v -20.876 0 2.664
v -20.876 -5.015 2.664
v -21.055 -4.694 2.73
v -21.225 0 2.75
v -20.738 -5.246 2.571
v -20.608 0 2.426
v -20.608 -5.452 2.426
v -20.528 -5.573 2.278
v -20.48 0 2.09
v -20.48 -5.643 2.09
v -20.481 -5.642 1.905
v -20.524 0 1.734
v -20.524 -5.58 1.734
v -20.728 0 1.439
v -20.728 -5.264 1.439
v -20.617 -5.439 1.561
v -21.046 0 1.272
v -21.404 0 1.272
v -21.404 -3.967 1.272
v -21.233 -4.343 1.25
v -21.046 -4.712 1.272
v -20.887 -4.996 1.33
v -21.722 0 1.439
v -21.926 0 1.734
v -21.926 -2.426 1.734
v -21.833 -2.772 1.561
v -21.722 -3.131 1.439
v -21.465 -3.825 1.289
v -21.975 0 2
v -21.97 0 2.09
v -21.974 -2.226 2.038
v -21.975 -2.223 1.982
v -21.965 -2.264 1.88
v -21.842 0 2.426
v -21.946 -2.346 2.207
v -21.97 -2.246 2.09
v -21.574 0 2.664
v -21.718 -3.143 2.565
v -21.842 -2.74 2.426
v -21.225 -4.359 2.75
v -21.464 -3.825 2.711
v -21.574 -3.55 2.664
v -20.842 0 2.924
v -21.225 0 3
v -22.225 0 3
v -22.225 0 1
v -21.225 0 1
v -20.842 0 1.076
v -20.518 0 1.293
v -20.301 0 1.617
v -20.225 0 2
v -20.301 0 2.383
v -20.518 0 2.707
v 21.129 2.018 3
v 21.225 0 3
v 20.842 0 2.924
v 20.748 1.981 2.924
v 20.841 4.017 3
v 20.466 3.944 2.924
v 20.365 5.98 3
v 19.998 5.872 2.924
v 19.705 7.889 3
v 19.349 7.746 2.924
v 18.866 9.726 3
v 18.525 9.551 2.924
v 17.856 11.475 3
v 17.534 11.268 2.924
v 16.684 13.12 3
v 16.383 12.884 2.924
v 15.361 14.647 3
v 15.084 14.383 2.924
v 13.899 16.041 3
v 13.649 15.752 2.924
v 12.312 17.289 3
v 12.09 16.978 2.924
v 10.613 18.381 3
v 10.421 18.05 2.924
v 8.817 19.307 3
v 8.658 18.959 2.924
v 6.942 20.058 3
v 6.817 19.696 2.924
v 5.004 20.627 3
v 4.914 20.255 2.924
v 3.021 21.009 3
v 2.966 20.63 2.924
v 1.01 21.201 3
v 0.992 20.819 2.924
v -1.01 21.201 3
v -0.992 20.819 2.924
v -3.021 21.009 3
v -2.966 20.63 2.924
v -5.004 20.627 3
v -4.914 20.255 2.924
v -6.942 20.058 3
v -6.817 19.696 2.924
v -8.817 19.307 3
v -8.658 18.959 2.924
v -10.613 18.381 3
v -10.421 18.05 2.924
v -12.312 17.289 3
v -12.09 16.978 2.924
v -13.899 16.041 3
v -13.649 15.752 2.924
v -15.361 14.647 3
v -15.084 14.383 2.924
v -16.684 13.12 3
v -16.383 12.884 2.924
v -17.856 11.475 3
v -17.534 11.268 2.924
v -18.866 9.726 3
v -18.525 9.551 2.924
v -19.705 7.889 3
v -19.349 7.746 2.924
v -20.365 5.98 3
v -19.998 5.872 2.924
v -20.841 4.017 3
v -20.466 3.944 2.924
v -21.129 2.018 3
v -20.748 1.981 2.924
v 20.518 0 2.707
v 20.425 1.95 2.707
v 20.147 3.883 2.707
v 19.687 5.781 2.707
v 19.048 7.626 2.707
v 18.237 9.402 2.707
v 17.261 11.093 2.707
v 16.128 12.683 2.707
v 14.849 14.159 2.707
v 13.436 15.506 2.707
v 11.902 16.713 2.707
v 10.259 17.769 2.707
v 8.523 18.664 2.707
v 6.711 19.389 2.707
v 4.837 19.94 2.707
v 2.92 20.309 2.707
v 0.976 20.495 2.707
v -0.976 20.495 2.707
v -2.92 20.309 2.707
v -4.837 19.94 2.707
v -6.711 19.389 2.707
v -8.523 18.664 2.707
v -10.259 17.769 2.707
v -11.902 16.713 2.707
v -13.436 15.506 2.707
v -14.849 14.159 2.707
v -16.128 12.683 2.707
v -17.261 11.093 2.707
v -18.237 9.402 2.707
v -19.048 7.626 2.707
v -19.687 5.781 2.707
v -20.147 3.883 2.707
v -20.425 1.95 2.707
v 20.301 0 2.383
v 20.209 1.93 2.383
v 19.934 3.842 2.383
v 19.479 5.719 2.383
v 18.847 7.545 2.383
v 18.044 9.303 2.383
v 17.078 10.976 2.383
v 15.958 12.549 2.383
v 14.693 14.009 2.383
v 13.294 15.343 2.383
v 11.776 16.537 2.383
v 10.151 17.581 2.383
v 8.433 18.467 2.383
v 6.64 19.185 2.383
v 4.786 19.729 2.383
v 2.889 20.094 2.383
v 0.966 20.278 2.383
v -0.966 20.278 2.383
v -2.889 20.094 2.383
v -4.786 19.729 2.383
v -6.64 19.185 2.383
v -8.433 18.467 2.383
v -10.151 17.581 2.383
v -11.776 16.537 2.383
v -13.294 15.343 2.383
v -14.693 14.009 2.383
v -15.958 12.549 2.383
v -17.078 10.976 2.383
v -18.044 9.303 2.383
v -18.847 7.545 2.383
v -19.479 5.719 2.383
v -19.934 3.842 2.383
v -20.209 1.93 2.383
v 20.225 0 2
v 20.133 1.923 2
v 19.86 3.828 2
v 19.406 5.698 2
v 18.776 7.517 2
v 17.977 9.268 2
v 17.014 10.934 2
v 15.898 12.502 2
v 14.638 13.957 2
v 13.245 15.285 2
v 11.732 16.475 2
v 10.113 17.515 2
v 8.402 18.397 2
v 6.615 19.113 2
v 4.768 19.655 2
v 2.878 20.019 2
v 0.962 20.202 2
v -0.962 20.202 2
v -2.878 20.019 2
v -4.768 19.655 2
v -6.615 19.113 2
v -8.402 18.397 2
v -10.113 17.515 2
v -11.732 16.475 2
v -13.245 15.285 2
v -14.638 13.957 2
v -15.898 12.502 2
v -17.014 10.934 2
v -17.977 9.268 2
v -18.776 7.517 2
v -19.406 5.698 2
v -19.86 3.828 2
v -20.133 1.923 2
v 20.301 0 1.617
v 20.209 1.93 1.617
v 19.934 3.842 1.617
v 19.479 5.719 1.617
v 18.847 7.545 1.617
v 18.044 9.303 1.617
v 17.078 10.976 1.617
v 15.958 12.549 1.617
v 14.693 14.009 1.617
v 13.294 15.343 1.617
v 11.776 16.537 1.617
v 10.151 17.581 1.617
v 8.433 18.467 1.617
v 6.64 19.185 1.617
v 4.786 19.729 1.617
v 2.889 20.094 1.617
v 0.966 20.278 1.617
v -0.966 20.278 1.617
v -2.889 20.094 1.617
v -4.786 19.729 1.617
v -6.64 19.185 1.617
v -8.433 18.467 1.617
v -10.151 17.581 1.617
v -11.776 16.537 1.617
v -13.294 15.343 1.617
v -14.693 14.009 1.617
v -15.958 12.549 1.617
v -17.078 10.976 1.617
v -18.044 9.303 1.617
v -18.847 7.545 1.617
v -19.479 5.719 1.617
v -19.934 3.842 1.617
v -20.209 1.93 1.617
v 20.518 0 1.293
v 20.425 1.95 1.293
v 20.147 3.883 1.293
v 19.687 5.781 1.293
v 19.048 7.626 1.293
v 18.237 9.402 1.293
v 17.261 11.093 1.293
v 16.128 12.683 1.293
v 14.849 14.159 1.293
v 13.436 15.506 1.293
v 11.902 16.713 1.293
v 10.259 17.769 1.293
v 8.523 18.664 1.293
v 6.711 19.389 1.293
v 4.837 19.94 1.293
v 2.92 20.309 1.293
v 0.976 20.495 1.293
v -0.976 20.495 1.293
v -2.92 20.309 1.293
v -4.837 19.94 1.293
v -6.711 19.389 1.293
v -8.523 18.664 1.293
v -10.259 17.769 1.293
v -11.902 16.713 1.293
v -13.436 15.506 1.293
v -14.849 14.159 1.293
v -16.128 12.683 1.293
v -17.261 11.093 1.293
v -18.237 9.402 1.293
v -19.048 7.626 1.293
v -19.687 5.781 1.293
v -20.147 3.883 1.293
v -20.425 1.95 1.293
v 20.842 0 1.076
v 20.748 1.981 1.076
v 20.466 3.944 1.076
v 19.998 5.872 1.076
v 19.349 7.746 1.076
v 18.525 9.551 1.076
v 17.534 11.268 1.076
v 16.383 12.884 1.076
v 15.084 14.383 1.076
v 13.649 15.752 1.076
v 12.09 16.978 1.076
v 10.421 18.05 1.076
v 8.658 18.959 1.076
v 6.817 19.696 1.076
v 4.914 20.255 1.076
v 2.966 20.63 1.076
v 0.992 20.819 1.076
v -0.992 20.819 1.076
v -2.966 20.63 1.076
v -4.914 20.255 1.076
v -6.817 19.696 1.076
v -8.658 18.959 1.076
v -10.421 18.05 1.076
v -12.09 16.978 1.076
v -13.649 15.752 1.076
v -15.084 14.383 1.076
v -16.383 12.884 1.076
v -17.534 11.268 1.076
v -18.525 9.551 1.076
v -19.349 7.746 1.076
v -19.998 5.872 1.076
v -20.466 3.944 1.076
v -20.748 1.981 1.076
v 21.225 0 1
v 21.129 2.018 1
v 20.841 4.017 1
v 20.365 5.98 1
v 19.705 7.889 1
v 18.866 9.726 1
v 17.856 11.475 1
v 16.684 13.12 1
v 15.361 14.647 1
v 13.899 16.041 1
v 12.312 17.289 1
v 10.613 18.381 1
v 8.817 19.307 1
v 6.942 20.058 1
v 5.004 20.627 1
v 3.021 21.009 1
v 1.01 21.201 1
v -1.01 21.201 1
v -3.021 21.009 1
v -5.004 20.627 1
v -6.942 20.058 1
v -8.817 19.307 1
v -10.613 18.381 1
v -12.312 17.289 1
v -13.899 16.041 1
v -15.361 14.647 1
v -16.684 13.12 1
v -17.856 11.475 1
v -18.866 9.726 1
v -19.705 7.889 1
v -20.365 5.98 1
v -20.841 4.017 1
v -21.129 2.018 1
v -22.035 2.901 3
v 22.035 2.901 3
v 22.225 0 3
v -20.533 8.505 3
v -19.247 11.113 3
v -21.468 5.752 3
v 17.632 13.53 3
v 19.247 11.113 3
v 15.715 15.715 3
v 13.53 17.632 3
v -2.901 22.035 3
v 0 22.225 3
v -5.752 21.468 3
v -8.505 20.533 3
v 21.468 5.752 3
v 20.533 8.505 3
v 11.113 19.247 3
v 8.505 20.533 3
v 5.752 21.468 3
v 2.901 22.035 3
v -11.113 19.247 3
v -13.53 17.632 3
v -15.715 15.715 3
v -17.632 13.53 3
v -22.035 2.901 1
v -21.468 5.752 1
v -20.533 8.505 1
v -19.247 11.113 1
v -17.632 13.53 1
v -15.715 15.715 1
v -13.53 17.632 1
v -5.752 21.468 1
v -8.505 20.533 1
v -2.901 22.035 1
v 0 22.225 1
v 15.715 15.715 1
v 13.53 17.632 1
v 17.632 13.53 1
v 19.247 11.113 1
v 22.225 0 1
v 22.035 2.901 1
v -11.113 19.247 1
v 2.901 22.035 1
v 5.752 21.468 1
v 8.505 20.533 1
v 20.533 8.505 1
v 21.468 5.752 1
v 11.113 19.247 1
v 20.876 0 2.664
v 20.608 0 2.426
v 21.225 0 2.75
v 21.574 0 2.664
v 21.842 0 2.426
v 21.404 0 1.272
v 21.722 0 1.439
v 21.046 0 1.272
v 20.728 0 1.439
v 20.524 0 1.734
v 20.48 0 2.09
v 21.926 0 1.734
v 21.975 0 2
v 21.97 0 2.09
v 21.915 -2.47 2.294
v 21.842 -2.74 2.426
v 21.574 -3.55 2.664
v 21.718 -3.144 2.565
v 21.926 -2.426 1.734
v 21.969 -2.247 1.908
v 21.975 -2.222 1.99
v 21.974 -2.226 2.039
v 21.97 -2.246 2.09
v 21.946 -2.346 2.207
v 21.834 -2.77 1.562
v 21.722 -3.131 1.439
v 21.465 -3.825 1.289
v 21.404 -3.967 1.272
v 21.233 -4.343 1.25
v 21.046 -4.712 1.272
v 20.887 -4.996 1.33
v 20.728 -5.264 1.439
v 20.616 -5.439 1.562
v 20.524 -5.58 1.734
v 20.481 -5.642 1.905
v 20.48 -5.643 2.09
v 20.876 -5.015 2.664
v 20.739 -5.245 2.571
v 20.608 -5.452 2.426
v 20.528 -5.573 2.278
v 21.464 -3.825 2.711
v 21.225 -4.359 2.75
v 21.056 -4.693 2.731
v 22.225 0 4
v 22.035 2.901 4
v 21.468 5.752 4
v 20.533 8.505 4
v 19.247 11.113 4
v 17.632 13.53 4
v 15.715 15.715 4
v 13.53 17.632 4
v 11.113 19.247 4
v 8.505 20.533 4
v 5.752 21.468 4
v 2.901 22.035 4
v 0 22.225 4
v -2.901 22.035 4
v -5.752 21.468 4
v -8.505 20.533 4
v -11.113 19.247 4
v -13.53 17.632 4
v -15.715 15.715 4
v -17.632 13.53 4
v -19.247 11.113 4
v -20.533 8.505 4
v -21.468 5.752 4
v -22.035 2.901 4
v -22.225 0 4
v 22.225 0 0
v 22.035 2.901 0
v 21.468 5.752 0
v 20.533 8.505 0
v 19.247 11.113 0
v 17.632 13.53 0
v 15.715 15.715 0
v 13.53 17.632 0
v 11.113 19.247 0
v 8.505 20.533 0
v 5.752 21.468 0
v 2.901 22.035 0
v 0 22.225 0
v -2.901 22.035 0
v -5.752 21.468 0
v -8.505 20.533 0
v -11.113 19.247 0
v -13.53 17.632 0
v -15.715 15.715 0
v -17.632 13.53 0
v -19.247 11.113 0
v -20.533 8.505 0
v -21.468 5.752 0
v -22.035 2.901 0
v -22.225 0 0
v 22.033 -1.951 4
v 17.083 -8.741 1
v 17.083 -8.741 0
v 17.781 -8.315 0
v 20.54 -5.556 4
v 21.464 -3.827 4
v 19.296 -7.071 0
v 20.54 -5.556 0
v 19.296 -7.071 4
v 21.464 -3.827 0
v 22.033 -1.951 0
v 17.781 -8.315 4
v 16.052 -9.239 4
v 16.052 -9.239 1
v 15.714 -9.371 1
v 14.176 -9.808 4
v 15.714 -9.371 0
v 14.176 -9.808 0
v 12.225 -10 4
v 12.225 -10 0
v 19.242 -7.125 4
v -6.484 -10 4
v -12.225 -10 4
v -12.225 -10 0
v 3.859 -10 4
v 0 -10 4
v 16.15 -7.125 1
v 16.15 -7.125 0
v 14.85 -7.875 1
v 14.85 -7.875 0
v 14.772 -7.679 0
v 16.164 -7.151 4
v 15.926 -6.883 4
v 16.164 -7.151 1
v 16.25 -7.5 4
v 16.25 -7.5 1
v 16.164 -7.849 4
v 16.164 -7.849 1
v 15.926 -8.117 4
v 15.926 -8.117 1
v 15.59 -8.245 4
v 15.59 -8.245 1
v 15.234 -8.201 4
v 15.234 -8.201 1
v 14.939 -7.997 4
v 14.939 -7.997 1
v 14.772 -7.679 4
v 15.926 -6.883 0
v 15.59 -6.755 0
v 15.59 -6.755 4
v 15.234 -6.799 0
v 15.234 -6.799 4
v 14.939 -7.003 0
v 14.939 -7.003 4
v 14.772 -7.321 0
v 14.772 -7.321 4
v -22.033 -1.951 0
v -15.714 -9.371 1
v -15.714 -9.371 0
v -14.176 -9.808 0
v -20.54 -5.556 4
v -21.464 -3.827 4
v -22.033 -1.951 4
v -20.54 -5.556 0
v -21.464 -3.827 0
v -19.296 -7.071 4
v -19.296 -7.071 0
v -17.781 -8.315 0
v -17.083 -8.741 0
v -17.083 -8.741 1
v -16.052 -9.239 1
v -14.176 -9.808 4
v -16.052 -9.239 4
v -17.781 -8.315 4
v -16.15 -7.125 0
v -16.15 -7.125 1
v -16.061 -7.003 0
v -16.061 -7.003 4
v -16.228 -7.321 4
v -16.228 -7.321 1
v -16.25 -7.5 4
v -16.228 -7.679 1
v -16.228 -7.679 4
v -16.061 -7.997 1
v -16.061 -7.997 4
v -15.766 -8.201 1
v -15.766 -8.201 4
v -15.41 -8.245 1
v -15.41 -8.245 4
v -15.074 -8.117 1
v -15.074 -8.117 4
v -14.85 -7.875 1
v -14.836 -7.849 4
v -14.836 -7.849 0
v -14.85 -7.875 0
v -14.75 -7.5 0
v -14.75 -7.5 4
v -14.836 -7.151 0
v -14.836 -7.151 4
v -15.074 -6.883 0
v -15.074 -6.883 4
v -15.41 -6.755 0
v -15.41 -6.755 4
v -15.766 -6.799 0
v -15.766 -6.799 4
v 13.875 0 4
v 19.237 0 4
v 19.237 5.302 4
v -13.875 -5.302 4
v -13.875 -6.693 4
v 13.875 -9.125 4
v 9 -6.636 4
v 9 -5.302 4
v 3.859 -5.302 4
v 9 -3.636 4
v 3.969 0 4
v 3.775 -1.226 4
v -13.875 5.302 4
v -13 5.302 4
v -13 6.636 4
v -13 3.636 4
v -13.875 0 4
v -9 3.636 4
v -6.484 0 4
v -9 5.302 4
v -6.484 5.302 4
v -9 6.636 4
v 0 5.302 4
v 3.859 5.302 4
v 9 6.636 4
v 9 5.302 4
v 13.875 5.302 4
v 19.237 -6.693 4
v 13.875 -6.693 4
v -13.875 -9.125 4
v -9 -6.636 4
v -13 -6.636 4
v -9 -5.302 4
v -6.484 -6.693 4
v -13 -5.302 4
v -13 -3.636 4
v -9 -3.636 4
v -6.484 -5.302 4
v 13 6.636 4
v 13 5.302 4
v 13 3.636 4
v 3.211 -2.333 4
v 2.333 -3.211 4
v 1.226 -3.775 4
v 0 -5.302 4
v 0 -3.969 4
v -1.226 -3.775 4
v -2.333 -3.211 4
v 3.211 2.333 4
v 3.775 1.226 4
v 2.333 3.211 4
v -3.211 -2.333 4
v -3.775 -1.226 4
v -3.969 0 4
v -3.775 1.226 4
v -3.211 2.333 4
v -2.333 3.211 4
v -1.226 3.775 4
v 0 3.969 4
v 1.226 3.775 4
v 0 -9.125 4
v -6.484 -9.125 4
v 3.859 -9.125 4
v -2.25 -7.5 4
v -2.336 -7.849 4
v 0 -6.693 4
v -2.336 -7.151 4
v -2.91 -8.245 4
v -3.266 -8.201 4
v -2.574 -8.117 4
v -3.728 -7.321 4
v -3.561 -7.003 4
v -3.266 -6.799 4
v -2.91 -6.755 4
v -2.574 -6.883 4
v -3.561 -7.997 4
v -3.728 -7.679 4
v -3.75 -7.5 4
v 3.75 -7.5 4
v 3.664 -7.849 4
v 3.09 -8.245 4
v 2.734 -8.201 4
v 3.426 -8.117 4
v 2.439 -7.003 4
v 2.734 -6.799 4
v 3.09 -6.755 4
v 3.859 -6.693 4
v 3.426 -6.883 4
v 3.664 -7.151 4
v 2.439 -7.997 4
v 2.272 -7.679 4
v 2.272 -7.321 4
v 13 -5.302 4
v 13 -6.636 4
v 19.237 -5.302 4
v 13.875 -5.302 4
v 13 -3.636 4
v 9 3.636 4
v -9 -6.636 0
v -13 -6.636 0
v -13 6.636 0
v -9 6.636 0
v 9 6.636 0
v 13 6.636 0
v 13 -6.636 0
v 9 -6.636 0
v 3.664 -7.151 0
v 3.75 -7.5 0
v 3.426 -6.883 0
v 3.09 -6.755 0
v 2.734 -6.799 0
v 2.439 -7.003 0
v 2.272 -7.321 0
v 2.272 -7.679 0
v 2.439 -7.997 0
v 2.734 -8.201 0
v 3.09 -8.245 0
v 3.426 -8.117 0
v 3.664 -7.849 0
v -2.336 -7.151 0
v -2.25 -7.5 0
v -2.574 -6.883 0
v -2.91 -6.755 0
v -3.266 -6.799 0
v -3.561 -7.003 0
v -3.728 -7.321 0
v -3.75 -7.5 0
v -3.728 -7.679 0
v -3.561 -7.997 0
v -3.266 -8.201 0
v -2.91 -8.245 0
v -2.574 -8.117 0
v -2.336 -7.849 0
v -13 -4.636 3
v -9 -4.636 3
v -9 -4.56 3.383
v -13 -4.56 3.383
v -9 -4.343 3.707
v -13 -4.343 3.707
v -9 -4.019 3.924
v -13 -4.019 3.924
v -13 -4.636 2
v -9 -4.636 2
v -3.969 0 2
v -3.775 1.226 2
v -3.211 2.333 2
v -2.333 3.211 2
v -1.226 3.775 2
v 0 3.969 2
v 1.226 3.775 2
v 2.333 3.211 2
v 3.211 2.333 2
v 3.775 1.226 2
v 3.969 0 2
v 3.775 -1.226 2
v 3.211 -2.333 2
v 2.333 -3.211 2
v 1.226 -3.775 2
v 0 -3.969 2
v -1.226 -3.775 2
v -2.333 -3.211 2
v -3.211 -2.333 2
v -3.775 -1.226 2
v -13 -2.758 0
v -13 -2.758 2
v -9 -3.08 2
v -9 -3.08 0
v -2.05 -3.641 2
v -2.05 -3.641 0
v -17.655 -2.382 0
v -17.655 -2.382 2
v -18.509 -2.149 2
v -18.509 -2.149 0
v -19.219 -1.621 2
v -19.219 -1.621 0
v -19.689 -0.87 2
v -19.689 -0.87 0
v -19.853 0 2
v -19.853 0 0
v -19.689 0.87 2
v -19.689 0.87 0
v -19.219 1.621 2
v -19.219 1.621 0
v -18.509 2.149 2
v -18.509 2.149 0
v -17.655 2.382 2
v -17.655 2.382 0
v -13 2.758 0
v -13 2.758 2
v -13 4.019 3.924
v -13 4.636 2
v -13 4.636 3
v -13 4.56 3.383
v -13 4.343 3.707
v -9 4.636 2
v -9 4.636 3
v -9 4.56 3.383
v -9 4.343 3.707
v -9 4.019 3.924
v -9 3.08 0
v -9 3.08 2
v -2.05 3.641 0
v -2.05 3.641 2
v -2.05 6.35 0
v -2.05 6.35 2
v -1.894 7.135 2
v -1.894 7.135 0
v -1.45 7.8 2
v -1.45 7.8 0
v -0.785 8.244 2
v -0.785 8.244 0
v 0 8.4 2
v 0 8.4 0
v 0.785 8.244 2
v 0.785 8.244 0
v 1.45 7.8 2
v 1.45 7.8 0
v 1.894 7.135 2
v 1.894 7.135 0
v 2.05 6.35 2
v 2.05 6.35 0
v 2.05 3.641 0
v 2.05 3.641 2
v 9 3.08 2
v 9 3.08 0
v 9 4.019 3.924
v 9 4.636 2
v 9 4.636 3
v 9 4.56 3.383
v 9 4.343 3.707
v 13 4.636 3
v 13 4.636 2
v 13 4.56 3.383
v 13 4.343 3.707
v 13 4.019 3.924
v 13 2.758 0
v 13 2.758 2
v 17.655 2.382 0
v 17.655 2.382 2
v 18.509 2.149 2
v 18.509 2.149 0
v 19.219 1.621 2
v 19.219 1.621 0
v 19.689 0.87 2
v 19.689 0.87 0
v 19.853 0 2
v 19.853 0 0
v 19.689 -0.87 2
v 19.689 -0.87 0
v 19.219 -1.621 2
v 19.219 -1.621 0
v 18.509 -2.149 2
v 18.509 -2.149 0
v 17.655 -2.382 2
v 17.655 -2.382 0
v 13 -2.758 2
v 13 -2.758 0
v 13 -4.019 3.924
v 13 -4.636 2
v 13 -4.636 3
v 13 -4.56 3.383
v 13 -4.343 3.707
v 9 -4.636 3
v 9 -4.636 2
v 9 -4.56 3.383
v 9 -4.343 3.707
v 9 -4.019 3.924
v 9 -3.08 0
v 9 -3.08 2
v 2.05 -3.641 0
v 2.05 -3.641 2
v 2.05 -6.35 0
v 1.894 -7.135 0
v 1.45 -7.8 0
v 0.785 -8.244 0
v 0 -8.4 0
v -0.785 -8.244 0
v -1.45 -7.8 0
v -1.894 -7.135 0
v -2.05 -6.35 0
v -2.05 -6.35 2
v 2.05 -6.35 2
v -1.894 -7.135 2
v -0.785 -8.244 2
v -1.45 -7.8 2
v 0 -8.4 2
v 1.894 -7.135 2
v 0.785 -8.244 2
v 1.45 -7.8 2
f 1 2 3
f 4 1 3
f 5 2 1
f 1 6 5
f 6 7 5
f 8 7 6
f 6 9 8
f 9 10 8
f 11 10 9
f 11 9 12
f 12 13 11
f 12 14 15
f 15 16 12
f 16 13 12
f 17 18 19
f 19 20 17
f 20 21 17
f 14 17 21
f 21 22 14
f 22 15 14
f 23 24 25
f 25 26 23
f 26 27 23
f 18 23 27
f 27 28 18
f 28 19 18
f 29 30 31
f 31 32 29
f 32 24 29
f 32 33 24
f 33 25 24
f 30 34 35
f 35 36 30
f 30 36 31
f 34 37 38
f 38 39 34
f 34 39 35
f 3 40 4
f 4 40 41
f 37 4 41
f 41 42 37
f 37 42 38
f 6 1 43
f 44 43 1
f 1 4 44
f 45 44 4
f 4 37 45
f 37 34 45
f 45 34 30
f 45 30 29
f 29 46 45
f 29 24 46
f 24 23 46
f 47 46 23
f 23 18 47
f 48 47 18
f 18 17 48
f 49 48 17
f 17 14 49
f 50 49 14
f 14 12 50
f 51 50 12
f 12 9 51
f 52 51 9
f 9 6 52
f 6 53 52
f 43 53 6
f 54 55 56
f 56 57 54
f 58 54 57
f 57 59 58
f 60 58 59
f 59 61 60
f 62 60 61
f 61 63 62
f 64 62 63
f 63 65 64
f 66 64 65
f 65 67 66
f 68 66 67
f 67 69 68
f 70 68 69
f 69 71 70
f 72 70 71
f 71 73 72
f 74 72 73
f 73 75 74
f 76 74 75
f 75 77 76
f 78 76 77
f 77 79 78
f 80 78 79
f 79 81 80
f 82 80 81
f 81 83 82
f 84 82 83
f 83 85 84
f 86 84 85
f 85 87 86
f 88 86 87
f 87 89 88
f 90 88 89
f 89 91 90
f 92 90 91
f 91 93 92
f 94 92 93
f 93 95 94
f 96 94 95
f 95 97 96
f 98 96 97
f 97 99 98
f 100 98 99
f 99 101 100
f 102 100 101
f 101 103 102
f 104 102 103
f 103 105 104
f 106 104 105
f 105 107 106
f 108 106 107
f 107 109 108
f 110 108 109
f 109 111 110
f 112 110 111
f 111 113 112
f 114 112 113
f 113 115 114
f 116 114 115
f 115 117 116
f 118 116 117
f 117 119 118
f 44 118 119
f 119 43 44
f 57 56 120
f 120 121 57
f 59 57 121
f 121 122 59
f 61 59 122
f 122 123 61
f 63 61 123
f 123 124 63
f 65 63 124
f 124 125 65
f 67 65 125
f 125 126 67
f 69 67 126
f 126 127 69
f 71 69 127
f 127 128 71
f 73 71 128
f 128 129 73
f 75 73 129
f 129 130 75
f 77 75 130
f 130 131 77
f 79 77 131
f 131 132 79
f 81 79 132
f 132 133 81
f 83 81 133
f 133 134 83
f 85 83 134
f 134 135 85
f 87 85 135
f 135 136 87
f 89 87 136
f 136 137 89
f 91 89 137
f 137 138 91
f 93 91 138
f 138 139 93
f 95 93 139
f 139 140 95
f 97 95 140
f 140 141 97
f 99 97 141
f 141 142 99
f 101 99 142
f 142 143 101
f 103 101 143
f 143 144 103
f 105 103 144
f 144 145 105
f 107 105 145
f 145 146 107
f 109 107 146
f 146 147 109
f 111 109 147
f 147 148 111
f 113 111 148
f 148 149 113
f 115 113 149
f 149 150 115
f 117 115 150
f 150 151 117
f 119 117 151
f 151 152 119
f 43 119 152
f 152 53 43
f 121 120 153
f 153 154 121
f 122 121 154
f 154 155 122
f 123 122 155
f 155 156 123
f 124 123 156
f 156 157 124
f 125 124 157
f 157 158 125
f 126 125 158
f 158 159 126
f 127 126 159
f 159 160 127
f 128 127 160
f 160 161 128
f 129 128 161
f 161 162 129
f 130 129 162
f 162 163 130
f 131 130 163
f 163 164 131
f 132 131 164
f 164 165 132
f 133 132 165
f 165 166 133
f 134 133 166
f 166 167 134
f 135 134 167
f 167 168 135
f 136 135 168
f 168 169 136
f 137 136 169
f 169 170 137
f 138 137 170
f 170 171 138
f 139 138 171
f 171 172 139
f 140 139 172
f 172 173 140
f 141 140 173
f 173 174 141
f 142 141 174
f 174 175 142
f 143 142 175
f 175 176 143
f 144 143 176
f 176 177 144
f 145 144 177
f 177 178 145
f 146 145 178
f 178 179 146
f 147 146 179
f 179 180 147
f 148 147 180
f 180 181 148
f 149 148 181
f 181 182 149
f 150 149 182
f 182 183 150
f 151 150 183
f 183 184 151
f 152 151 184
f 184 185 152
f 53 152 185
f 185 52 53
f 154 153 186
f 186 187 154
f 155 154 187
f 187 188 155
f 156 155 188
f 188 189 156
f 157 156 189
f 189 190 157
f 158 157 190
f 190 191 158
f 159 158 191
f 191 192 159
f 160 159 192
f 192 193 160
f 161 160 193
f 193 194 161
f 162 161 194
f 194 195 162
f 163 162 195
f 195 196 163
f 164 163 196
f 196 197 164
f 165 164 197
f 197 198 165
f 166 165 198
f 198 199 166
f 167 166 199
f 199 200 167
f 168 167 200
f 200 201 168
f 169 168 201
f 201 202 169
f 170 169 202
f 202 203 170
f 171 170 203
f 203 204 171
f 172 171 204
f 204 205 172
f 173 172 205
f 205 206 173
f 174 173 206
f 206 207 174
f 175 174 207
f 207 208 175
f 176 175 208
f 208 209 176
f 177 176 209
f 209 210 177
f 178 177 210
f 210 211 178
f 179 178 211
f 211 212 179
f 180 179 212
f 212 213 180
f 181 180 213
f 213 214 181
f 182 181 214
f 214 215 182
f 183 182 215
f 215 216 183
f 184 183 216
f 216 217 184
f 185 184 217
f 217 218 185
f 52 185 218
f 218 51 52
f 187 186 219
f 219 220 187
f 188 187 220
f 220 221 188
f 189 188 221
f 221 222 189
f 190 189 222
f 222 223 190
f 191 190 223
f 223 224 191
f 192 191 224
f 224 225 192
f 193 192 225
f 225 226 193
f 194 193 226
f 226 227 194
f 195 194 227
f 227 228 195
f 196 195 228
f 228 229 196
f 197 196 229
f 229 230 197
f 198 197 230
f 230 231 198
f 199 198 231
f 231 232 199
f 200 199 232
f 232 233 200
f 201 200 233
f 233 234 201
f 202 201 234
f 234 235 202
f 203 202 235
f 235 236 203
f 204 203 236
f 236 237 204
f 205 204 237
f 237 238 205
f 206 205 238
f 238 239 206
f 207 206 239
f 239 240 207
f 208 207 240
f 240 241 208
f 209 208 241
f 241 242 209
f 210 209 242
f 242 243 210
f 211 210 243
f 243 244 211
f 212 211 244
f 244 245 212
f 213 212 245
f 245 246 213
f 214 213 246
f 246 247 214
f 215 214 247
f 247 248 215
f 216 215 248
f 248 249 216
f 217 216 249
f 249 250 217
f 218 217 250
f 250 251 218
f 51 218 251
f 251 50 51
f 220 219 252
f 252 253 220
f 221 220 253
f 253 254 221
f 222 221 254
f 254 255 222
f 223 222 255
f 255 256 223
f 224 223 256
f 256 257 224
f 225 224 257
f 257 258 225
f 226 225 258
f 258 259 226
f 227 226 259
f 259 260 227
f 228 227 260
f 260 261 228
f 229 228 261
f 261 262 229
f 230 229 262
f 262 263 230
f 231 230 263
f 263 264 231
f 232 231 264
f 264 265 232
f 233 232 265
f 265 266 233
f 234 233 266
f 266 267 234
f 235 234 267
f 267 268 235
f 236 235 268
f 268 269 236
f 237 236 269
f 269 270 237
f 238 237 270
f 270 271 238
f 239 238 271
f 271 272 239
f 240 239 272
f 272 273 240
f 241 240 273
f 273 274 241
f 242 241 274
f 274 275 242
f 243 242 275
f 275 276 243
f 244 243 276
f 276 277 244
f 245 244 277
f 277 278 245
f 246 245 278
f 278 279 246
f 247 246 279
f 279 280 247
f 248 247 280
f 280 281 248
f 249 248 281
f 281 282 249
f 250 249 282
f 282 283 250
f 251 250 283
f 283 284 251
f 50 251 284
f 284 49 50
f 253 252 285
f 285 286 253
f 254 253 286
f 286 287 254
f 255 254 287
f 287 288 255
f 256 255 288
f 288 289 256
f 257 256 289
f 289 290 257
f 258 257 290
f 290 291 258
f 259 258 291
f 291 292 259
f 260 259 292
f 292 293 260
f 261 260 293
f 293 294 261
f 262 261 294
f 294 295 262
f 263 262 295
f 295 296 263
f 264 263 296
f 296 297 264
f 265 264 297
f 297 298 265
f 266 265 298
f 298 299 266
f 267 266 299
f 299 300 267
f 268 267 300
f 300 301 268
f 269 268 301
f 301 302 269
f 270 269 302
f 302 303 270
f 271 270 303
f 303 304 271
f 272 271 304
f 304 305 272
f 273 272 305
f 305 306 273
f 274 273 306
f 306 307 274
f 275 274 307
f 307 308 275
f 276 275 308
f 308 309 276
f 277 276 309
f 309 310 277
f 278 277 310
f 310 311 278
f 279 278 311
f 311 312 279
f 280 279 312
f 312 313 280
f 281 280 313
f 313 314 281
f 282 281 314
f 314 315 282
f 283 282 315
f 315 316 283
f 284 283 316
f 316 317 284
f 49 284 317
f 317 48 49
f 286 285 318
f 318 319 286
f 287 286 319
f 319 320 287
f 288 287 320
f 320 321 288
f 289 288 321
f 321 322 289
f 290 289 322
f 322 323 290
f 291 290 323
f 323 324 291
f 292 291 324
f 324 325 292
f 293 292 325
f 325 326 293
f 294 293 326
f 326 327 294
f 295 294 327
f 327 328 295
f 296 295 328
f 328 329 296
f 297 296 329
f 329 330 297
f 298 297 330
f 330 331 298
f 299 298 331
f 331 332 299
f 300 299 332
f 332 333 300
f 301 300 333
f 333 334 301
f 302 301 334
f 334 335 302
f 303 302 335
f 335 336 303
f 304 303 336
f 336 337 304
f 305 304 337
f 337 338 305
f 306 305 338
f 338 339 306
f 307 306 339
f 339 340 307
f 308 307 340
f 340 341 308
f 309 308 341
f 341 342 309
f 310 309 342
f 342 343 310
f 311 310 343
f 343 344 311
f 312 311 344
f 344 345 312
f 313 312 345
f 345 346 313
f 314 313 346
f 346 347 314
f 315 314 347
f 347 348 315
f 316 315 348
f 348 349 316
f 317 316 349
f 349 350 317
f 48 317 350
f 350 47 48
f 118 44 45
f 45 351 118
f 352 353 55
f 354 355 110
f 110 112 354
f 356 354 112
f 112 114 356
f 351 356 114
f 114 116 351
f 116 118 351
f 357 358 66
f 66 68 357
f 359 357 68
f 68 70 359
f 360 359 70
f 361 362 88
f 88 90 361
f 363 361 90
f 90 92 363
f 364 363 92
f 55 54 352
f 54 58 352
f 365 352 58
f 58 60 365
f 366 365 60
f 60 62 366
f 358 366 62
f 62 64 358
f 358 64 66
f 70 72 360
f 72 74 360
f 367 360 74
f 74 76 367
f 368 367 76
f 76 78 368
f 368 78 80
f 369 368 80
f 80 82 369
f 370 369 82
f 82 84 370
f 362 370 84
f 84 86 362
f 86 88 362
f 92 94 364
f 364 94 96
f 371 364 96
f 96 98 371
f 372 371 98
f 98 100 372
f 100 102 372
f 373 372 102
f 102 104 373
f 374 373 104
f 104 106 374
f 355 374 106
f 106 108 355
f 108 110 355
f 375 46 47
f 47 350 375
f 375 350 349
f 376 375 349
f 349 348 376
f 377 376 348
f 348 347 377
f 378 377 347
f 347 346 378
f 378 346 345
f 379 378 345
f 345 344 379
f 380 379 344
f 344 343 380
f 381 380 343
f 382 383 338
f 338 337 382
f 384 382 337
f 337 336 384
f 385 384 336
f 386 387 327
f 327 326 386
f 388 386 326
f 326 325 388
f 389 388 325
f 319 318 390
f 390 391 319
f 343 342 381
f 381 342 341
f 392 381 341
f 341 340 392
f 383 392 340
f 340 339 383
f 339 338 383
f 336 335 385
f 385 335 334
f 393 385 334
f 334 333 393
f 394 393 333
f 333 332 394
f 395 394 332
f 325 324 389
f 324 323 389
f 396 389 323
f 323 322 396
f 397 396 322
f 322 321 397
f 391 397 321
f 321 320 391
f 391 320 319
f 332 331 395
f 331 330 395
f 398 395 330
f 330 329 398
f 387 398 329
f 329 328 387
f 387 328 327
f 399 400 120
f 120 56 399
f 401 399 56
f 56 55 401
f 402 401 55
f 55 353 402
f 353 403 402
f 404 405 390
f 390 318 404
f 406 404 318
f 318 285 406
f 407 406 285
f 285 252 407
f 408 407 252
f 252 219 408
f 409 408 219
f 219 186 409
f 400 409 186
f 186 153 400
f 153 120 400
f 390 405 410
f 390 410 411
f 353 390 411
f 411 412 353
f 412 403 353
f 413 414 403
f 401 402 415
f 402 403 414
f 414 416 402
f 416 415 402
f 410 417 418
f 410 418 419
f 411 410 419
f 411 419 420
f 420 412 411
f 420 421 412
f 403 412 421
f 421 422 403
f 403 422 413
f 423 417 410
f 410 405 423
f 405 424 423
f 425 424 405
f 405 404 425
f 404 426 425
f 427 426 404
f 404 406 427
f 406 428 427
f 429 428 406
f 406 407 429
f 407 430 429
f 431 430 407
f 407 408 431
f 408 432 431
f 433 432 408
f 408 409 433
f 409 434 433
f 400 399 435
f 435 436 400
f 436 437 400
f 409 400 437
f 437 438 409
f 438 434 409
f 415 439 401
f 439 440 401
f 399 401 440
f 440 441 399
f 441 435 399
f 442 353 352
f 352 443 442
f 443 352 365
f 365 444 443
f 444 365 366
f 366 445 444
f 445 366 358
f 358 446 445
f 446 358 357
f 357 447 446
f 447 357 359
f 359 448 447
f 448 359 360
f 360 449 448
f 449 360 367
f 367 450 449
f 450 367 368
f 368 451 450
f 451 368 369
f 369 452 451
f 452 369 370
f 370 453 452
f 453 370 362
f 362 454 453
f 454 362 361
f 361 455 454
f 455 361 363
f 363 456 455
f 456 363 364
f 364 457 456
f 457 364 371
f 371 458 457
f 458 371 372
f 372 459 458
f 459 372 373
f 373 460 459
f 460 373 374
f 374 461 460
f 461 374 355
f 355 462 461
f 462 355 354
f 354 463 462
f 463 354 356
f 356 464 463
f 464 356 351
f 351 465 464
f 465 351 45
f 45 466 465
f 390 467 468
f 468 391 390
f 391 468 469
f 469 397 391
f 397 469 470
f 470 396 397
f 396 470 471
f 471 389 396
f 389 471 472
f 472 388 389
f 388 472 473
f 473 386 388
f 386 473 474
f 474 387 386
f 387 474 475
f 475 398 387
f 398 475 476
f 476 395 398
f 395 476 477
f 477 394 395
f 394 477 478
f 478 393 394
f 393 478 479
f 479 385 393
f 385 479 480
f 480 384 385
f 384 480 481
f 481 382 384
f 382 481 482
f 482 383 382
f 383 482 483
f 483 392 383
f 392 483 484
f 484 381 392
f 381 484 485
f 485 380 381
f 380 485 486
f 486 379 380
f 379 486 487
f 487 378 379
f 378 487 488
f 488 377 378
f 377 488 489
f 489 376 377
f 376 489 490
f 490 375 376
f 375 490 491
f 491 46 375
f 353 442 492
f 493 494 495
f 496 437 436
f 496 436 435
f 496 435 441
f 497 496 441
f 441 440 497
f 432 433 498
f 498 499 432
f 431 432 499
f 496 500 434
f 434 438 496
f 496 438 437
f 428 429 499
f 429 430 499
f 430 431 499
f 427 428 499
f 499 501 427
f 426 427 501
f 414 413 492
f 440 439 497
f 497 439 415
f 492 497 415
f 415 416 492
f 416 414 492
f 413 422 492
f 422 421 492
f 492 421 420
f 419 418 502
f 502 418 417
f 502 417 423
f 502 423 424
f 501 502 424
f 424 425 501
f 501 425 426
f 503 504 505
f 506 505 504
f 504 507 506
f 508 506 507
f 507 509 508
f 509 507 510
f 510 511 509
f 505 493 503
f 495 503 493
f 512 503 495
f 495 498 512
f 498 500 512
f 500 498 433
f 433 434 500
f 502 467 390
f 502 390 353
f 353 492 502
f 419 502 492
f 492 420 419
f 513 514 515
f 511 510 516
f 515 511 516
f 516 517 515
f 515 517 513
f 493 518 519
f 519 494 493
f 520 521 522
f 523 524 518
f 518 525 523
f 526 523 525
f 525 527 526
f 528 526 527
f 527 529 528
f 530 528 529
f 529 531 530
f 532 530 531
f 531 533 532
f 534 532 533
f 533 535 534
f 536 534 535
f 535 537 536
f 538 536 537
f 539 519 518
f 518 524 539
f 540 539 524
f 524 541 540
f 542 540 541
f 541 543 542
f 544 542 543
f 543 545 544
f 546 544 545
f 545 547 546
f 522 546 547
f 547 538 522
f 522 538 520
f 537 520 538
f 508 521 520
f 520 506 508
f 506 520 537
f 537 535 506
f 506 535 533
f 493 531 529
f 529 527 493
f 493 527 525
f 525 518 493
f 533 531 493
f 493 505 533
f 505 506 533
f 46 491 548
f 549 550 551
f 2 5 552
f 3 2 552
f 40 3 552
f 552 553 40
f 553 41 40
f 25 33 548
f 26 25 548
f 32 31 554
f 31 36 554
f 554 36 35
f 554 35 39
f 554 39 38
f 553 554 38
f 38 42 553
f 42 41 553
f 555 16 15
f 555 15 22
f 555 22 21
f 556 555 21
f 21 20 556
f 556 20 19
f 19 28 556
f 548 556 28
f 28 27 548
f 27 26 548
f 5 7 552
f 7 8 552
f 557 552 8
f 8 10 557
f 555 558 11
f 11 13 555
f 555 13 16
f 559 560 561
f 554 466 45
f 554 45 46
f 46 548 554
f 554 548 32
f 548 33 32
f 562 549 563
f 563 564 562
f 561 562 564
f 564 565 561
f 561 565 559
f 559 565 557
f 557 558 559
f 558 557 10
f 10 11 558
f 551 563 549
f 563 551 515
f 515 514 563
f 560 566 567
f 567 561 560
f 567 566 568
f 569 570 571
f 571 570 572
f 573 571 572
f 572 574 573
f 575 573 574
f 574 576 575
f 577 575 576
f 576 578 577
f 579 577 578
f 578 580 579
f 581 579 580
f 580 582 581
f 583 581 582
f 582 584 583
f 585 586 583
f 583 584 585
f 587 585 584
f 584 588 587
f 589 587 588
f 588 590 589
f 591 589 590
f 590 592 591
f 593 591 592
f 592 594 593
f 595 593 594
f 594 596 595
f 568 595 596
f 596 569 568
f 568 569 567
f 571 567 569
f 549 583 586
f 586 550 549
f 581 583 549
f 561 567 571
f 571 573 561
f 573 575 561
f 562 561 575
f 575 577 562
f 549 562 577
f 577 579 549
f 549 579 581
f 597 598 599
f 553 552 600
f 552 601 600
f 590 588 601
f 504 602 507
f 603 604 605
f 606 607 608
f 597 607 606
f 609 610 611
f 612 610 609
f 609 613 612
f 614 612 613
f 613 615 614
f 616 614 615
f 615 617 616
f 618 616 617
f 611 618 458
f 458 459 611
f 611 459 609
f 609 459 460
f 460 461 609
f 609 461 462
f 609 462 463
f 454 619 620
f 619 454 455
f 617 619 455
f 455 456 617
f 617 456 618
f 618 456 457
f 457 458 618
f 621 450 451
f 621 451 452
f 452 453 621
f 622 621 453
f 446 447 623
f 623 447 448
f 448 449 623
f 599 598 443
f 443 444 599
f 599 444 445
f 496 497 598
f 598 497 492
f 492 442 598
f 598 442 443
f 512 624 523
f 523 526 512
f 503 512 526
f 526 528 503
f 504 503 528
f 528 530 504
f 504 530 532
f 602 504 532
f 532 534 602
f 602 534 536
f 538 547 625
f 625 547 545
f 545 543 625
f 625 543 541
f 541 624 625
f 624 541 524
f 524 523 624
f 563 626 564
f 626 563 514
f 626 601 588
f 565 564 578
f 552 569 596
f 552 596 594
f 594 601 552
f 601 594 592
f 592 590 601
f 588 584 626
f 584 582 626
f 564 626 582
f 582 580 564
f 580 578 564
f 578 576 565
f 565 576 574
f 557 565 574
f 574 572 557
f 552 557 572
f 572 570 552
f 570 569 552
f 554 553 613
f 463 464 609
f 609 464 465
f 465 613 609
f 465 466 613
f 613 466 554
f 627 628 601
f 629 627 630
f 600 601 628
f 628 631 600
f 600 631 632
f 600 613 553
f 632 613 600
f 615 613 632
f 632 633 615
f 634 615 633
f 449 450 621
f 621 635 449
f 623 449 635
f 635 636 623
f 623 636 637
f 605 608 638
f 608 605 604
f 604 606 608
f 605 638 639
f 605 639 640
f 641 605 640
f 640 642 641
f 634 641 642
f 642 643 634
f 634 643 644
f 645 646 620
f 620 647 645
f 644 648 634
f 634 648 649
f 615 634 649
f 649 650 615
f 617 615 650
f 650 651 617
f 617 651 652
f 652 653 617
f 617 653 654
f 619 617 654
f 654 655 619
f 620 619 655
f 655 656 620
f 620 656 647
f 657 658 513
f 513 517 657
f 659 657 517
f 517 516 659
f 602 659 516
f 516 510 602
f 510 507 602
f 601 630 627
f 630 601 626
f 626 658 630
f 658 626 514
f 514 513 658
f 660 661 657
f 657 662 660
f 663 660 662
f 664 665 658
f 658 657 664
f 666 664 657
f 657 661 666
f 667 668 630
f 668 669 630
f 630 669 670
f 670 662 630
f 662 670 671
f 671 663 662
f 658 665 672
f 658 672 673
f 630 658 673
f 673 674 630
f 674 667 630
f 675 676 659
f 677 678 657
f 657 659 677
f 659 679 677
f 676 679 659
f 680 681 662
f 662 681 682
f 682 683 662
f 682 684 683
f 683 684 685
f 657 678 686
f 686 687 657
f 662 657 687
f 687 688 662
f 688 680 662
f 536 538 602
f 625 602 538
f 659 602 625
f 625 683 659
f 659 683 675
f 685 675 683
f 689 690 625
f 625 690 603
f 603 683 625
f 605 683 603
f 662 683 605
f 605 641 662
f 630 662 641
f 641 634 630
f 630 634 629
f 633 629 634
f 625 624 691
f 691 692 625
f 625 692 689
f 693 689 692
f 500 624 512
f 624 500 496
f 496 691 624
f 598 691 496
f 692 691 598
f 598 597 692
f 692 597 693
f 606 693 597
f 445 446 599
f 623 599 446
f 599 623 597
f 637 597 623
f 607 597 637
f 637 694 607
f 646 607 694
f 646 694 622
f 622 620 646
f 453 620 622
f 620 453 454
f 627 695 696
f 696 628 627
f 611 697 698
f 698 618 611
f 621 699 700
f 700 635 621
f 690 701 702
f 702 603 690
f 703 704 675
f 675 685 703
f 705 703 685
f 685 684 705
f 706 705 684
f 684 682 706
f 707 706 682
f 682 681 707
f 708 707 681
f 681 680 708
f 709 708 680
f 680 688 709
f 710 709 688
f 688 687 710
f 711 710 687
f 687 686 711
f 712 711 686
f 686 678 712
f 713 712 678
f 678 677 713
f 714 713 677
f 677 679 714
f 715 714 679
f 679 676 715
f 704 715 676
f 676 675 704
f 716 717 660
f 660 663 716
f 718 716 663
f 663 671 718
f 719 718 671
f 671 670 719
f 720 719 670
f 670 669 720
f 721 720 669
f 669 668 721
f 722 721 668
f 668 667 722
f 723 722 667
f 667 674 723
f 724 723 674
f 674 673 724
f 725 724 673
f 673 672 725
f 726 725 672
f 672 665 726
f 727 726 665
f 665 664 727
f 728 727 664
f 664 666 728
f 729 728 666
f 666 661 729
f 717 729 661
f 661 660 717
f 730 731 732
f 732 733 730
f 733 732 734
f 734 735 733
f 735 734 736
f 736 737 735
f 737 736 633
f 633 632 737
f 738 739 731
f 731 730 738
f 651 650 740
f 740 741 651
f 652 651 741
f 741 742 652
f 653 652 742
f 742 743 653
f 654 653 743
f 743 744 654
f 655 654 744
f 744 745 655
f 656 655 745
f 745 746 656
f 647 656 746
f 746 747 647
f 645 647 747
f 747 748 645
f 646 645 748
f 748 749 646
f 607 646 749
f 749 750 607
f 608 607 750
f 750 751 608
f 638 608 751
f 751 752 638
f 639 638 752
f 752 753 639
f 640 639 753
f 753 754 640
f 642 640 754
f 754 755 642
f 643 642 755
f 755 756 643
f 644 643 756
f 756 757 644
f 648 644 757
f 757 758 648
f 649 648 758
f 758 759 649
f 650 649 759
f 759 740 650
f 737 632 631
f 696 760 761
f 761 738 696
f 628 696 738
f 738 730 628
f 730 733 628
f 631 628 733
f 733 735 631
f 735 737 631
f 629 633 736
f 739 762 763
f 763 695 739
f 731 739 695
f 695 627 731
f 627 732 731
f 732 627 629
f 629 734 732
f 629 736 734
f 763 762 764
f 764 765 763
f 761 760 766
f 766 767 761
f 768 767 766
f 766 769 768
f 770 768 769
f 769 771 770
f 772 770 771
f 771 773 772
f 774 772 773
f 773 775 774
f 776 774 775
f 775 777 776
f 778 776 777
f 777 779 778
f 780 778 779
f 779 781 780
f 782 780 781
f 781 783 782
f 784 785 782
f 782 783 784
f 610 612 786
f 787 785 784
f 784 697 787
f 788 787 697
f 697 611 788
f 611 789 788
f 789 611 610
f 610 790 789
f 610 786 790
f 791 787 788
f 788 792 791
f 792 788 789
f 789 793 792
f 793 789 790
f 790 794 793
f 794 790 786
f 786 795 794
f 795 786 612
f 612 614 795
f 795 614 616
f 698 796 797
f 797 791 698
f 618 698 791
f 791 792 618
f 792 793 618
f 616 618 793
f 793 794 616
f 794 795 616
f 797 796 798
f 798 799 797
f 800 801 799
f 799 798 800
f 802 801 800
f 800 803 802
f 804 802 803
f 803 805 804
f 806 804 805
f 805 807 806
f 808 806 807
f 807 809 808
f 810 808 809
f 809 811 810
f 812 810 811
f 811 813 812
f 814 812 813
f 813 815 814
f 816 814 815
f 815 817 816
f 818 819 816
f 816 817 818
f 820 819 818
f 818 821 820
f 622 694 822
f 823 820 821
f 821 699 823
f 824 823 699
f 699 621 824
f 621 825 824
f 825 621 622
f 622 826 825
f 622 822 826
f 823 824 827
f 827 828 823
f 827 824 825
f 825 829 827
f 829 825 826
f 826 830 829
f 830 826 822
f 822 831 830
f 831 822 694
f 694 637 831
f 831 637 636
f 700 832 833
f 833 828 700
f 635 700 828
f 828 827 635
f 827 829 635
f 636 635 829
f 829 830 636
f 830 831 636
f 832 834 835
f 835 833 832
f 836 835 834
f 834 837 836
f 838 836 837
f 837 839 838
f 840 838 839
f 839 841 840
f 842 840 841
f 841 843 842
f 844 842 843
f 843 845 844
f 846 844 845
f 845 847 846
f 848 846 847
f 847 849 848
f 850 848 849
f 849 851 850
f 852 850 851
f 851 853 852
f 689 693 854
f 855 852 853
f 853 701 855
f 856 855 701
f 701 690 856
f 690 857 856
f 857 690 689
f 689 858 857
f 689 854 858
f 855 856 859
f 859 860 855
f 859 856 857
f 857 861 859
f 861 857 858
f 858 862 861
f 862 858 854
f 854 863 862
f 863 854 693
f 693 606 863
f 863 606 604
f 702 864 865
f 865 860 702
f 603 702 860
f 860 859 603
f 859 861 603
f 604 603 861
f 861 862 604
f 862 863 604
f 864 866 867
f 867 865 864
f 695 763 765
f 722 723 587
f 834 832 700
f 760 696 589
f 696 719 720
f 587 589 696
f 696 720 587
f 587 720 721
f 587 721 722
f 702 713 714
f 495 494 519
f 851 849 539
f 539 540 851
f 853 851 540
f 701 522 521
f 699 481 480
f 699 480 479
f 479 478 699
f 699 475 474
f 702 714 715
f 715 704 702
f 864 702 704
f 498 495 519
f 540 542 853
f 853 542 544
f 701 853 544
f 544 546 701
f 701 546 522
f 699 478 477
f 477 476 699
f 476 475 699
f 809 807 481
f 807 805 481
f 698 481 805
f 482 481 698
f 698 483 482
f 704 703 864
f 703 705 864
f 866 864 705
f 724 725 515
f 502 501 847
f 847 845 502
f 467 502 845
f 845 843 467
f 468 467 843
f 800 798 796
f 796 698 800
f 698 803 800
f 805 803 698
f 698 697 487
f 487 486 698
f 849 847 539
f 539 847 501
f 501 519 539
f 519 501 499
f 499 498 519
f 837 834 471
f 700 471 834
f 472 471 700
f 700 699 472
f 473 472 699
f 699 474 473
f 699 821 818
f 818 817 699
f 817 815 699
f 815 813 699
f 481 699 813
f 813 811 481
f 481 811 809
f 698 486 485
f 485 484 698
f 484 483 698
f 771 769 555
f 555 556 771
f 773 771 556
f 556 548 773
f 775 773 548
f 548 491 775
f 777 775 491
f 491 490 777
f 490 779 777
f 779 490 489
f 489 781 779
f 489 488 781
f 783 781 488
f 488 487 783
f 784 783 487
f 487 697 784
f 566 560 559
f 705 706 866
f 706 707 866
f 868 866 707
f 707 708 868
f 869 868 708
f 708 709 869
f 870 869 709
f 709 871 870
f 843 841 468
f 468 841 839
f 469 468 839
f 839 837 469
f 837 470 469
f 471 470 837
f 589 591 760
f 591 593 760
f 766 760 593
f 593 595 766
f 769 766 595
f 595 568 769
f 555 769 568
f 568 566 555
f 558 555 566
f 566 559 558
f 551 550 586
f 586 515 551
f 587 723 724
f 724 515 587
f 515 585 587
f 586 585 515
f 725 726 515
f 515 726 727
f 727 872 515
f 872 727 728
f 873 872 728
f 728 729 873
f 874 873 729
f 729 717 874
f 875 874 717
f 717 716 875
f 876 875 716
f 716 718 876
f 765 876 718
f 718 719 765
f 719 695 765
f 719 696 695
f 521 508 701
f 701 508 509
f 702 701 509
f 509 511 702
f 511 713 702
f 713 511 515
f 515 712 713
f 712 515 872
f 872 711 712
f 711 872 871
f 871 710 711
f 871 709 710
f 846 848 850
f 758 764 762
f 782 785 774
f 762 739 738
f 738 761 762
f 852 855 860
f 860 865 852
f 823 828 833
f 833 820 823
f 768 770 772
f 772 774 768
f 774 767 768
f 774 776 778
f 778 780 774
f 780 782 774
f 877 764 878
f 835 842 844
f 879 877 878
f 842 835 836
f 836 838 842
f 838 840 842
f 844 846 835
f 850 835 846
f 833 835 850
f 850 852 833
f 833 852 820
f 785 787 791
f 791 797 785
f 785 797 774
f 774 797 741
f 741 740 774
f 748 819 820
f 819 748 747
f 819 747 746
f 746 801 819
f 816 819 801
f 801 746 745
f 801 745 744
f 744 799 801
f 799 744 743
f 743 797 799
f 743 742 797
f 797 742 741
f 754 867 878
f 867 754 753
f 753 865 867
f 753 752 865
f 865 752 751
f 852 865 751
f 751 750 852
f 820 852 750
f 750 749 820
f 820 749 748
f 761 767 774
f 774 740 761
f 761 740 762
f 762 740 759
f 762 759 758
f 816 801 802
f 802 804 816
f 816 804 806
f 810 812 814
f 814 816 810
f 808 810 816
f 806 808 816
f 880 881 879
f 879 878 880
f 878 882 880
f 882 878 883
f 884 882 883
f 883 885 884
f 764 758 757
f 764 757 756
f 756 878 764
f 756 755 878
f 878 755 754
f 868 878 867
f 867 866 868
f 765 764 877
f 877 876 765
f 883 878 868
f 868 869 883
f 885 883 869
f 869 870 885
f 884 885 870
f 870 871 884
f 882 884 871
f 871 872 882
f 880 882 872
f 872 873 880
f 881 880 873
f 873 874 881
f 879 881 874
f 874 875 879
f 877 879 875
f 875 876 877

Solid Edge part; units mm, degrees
sketch "Sketch1" plane through (0, 0, 0) normal (0, 0, 1) x (1, 0, 0)
  line L0 (-12.225, -10) -> (12.225, -10)
  arc A0 (-22.225, 0) -> (22.225, 0) centre (0, 0) cw
  arc A1 (22.225, 0) -> (12.225, -10) centre (12.225, 0) cw
  arc A2 (-12.225, -10) -> (-22.225, 0) centre (-12.225, 0) cw
extrude "Protrusion1" add sketch "Sketch1" along normal blind 4
sketch "Sketch2" plane through (0, 0, 0) normal (0, 0, 1) x (1, 0, 0)
  line L0 (2.05, -3.6407) -> (17.6546, -2.3823)
  arc A0 (17.6546, -2.3823) -> (17.6546, 2.3823) centre (17.4625, 0) ccw
  line L1 (17.6546, 2.3823) -> (2.05, 3.6407)
  line L2 (2.05, 3.6407) -> (2.05, 6.35)
  arc A1 (2.05, 6.35) -> (-2.05, 6.35) centre (0, 6.35) ccw
  line L3 (-2.05, 6.35) -> (-2.05, 3.6407)
  line L4 (-2.05, 3.6407) -> (-17.6546, 2.3823)
  arc A2 (-17.6546, 2.3823) -> (-17.6546, -2.3823) centre (-17.4625, 0) ccw
  line L5 (-17.6546, -2.3823) -> (-2.05, -3.6407)
  line L6 (-2.05, -3.6407) -> (-2.05, -6.35)
  arc A3 (-2.05, -6.35) -> (2.05, -6.35) centre (0, -6.35) ccw
  line L7 (2.05, -6.35) -> (2.05, -3.6407)
extrude "ExtrudedCutout_1" cut sketch "Sketch2" along normal blind 2
sketch "Sketch3" plane through (0, 6.1125, 0) normal (0, 0, -1) x (1, 0, 0)
  line L0 (-13, 12.7485) -> (-9, 12.7485)
  line L1 (-9, 12.7485) -> (-9, 10.7485)
  line L2 (-9, 10.7485) -> (-13, 10.7485)
  line L3 (-13, 10.7485) -> (-13, 12.7485)
  line L4 (-13, -0.5235) -> (-13, 1.4765)
  line L5 (-13, 1.4765) -> (-9, 1.4765)
  line L6 (-9, 1.4765) -> (-9, -0.5235)
  line L7 (-9, -0.5235) -> (-13, -0.5235)
  line L8 (13, -0.5235) -> (9, -0.5235)
  line L9 (9, -0.5235) -> (9, 1.4765)
  line L10 (9, 1.4765) -> (13, 1.4765)
  line L11 (13, 1.4765) -> (13, -0.5235)
  line L12 (9, 12.7485) -> (13, 12.7485)
  line L13 (13, 12.7485) -> (13, 10.7485)
  line L14 (13, 10.7485) -> (9, 10.7485)
  line L15 (9, 10.7485) -> (9, 12.7485)
  dimension "D1" = 4
  dimension "D2" = 2
  dimension "D3" = 22
  dimension "D4" = 4
  dimension "D5" = 2
  dimension "D6" = 4
  dimension "D7" = 2
  dimension "D8" = 4
  dimension "D9" = 2
extrude "Cutout1" cut sketch "Sketch3" against normal through all
fillet "Round_1" radius 1 8 edges at (11, 4.636, 0) (11, -4.636, 0) (11, -4.636, 4) (11, 4.636, 4) (-11, 4.636, 4) (-11, -4.636, 4) (-11, -4.636, 0) (-11, 4.636, 0)
sketch "Sketch4" plane through (0, 0, 0) normal (0, -1, 0) x (1, 0, 0)
  line L0 (-22.225, 1) -> (-21.225, 1)
  line L1 (-22.225, 3) -> (-22.225, 1)
  line L2 (-21.225, 3) -> (-22.225, 3)
  arc A0 (-21.225, 3) -> (-21.225, 1) centre (-21.225, 2) cw
revolve "RevolvedCutout_1" cut sketch "Sketch4" angle 180 about axis through (0, 0, 0) along (0, 0, -1)
sketch "Sketch5" plane through (-21.475, 0, 2) normal (0, 1, 0) x (-1, 0, 0)
  circle A0 centre (-0.25, 0) radius 0.75
extrude "Cutout2" cut sketch "Sketch5" against normal through all
mirror "Mirror1" about plane through (0, 0, 0) normal (1, 0, 0) of "Cutout2"
sketch "Sketch6" plane through (0, 0, 0) normal (0, 0, -1) x (-1, 0, 0)
  circle A0 centre (0, 0) radius 3.9688
extrude "Cutout4" cut sketch "Sketch6" against normal up to vertex (4 mm away)
sketch "Sketch7" plane through (0, 6.1125, 0) normal (0, 0, -1) x (1, 0, 0)
  line L0 (-9, 10.7485) -> (-9, 1.4765)
  line L1 (-9, 1.4765) -> (-13, 1.4765)
  line L2 (-13, 1.4765) -> (-13, 10.7485)
  line L3 (-13, 10.7485) -> (-9, 10.7485)
  line L4 (9, 10.7485) -> (9, 1.4765)
  line L5 (9, 1.4765) -> (13, 1.4765)
  line L6 (13, 1.4765) -> (13, 10.7485)
  line L7 (13, 10.7485) -> (9, 10.7485)
extrude "Cutout5" cut sketch "Sketch7" against normal up to vertex (2 mm away)
sketch "Sketch8" plane through (0, 6.1125, 4) normal (0, 0, 1) x (1, 0, 0)
  circle A0 centre (15.5, -13.6125) radius 0.75
  circle A1 centre (3, -13.6125) radius 0.75
  dimension "D1" = 1.5
  dimension "D2" = 15.5
  dimension "D3" = 7.5
  dimension "D4" = 3
extrude "ExtrudedCutout_9" cut sketch "Sketch8" against normal blind 4
mirror "Mirror2" about plane through (0, 0, 0) normal (1, 0, 0) of "ExtrudedCutout_9"
sketch "Sketch9" plane through (0, 6.1125, 0) normal (0, 0, -1) x (1, 0, 0)
  line L0 (16.1495, 13.2375) -> (17.1495, 14.9696)
  line L1 (15.8505, 15.7196) -> (17.1495, 14.9696)
  line L2 (14.8505, 13.9875) -> (15.8505, 15.7196)
  line L3 (16.1495, 13.2375) -> (14.8505, 13.9875)
extrude "ExtrudedCutout_12" cut sketch "Sketch9" against normal blind 1
mirror "Mirror3" about plane through (0, 0, 0) normal (1, 0, 0) of "ExtrudedCutout_12"
